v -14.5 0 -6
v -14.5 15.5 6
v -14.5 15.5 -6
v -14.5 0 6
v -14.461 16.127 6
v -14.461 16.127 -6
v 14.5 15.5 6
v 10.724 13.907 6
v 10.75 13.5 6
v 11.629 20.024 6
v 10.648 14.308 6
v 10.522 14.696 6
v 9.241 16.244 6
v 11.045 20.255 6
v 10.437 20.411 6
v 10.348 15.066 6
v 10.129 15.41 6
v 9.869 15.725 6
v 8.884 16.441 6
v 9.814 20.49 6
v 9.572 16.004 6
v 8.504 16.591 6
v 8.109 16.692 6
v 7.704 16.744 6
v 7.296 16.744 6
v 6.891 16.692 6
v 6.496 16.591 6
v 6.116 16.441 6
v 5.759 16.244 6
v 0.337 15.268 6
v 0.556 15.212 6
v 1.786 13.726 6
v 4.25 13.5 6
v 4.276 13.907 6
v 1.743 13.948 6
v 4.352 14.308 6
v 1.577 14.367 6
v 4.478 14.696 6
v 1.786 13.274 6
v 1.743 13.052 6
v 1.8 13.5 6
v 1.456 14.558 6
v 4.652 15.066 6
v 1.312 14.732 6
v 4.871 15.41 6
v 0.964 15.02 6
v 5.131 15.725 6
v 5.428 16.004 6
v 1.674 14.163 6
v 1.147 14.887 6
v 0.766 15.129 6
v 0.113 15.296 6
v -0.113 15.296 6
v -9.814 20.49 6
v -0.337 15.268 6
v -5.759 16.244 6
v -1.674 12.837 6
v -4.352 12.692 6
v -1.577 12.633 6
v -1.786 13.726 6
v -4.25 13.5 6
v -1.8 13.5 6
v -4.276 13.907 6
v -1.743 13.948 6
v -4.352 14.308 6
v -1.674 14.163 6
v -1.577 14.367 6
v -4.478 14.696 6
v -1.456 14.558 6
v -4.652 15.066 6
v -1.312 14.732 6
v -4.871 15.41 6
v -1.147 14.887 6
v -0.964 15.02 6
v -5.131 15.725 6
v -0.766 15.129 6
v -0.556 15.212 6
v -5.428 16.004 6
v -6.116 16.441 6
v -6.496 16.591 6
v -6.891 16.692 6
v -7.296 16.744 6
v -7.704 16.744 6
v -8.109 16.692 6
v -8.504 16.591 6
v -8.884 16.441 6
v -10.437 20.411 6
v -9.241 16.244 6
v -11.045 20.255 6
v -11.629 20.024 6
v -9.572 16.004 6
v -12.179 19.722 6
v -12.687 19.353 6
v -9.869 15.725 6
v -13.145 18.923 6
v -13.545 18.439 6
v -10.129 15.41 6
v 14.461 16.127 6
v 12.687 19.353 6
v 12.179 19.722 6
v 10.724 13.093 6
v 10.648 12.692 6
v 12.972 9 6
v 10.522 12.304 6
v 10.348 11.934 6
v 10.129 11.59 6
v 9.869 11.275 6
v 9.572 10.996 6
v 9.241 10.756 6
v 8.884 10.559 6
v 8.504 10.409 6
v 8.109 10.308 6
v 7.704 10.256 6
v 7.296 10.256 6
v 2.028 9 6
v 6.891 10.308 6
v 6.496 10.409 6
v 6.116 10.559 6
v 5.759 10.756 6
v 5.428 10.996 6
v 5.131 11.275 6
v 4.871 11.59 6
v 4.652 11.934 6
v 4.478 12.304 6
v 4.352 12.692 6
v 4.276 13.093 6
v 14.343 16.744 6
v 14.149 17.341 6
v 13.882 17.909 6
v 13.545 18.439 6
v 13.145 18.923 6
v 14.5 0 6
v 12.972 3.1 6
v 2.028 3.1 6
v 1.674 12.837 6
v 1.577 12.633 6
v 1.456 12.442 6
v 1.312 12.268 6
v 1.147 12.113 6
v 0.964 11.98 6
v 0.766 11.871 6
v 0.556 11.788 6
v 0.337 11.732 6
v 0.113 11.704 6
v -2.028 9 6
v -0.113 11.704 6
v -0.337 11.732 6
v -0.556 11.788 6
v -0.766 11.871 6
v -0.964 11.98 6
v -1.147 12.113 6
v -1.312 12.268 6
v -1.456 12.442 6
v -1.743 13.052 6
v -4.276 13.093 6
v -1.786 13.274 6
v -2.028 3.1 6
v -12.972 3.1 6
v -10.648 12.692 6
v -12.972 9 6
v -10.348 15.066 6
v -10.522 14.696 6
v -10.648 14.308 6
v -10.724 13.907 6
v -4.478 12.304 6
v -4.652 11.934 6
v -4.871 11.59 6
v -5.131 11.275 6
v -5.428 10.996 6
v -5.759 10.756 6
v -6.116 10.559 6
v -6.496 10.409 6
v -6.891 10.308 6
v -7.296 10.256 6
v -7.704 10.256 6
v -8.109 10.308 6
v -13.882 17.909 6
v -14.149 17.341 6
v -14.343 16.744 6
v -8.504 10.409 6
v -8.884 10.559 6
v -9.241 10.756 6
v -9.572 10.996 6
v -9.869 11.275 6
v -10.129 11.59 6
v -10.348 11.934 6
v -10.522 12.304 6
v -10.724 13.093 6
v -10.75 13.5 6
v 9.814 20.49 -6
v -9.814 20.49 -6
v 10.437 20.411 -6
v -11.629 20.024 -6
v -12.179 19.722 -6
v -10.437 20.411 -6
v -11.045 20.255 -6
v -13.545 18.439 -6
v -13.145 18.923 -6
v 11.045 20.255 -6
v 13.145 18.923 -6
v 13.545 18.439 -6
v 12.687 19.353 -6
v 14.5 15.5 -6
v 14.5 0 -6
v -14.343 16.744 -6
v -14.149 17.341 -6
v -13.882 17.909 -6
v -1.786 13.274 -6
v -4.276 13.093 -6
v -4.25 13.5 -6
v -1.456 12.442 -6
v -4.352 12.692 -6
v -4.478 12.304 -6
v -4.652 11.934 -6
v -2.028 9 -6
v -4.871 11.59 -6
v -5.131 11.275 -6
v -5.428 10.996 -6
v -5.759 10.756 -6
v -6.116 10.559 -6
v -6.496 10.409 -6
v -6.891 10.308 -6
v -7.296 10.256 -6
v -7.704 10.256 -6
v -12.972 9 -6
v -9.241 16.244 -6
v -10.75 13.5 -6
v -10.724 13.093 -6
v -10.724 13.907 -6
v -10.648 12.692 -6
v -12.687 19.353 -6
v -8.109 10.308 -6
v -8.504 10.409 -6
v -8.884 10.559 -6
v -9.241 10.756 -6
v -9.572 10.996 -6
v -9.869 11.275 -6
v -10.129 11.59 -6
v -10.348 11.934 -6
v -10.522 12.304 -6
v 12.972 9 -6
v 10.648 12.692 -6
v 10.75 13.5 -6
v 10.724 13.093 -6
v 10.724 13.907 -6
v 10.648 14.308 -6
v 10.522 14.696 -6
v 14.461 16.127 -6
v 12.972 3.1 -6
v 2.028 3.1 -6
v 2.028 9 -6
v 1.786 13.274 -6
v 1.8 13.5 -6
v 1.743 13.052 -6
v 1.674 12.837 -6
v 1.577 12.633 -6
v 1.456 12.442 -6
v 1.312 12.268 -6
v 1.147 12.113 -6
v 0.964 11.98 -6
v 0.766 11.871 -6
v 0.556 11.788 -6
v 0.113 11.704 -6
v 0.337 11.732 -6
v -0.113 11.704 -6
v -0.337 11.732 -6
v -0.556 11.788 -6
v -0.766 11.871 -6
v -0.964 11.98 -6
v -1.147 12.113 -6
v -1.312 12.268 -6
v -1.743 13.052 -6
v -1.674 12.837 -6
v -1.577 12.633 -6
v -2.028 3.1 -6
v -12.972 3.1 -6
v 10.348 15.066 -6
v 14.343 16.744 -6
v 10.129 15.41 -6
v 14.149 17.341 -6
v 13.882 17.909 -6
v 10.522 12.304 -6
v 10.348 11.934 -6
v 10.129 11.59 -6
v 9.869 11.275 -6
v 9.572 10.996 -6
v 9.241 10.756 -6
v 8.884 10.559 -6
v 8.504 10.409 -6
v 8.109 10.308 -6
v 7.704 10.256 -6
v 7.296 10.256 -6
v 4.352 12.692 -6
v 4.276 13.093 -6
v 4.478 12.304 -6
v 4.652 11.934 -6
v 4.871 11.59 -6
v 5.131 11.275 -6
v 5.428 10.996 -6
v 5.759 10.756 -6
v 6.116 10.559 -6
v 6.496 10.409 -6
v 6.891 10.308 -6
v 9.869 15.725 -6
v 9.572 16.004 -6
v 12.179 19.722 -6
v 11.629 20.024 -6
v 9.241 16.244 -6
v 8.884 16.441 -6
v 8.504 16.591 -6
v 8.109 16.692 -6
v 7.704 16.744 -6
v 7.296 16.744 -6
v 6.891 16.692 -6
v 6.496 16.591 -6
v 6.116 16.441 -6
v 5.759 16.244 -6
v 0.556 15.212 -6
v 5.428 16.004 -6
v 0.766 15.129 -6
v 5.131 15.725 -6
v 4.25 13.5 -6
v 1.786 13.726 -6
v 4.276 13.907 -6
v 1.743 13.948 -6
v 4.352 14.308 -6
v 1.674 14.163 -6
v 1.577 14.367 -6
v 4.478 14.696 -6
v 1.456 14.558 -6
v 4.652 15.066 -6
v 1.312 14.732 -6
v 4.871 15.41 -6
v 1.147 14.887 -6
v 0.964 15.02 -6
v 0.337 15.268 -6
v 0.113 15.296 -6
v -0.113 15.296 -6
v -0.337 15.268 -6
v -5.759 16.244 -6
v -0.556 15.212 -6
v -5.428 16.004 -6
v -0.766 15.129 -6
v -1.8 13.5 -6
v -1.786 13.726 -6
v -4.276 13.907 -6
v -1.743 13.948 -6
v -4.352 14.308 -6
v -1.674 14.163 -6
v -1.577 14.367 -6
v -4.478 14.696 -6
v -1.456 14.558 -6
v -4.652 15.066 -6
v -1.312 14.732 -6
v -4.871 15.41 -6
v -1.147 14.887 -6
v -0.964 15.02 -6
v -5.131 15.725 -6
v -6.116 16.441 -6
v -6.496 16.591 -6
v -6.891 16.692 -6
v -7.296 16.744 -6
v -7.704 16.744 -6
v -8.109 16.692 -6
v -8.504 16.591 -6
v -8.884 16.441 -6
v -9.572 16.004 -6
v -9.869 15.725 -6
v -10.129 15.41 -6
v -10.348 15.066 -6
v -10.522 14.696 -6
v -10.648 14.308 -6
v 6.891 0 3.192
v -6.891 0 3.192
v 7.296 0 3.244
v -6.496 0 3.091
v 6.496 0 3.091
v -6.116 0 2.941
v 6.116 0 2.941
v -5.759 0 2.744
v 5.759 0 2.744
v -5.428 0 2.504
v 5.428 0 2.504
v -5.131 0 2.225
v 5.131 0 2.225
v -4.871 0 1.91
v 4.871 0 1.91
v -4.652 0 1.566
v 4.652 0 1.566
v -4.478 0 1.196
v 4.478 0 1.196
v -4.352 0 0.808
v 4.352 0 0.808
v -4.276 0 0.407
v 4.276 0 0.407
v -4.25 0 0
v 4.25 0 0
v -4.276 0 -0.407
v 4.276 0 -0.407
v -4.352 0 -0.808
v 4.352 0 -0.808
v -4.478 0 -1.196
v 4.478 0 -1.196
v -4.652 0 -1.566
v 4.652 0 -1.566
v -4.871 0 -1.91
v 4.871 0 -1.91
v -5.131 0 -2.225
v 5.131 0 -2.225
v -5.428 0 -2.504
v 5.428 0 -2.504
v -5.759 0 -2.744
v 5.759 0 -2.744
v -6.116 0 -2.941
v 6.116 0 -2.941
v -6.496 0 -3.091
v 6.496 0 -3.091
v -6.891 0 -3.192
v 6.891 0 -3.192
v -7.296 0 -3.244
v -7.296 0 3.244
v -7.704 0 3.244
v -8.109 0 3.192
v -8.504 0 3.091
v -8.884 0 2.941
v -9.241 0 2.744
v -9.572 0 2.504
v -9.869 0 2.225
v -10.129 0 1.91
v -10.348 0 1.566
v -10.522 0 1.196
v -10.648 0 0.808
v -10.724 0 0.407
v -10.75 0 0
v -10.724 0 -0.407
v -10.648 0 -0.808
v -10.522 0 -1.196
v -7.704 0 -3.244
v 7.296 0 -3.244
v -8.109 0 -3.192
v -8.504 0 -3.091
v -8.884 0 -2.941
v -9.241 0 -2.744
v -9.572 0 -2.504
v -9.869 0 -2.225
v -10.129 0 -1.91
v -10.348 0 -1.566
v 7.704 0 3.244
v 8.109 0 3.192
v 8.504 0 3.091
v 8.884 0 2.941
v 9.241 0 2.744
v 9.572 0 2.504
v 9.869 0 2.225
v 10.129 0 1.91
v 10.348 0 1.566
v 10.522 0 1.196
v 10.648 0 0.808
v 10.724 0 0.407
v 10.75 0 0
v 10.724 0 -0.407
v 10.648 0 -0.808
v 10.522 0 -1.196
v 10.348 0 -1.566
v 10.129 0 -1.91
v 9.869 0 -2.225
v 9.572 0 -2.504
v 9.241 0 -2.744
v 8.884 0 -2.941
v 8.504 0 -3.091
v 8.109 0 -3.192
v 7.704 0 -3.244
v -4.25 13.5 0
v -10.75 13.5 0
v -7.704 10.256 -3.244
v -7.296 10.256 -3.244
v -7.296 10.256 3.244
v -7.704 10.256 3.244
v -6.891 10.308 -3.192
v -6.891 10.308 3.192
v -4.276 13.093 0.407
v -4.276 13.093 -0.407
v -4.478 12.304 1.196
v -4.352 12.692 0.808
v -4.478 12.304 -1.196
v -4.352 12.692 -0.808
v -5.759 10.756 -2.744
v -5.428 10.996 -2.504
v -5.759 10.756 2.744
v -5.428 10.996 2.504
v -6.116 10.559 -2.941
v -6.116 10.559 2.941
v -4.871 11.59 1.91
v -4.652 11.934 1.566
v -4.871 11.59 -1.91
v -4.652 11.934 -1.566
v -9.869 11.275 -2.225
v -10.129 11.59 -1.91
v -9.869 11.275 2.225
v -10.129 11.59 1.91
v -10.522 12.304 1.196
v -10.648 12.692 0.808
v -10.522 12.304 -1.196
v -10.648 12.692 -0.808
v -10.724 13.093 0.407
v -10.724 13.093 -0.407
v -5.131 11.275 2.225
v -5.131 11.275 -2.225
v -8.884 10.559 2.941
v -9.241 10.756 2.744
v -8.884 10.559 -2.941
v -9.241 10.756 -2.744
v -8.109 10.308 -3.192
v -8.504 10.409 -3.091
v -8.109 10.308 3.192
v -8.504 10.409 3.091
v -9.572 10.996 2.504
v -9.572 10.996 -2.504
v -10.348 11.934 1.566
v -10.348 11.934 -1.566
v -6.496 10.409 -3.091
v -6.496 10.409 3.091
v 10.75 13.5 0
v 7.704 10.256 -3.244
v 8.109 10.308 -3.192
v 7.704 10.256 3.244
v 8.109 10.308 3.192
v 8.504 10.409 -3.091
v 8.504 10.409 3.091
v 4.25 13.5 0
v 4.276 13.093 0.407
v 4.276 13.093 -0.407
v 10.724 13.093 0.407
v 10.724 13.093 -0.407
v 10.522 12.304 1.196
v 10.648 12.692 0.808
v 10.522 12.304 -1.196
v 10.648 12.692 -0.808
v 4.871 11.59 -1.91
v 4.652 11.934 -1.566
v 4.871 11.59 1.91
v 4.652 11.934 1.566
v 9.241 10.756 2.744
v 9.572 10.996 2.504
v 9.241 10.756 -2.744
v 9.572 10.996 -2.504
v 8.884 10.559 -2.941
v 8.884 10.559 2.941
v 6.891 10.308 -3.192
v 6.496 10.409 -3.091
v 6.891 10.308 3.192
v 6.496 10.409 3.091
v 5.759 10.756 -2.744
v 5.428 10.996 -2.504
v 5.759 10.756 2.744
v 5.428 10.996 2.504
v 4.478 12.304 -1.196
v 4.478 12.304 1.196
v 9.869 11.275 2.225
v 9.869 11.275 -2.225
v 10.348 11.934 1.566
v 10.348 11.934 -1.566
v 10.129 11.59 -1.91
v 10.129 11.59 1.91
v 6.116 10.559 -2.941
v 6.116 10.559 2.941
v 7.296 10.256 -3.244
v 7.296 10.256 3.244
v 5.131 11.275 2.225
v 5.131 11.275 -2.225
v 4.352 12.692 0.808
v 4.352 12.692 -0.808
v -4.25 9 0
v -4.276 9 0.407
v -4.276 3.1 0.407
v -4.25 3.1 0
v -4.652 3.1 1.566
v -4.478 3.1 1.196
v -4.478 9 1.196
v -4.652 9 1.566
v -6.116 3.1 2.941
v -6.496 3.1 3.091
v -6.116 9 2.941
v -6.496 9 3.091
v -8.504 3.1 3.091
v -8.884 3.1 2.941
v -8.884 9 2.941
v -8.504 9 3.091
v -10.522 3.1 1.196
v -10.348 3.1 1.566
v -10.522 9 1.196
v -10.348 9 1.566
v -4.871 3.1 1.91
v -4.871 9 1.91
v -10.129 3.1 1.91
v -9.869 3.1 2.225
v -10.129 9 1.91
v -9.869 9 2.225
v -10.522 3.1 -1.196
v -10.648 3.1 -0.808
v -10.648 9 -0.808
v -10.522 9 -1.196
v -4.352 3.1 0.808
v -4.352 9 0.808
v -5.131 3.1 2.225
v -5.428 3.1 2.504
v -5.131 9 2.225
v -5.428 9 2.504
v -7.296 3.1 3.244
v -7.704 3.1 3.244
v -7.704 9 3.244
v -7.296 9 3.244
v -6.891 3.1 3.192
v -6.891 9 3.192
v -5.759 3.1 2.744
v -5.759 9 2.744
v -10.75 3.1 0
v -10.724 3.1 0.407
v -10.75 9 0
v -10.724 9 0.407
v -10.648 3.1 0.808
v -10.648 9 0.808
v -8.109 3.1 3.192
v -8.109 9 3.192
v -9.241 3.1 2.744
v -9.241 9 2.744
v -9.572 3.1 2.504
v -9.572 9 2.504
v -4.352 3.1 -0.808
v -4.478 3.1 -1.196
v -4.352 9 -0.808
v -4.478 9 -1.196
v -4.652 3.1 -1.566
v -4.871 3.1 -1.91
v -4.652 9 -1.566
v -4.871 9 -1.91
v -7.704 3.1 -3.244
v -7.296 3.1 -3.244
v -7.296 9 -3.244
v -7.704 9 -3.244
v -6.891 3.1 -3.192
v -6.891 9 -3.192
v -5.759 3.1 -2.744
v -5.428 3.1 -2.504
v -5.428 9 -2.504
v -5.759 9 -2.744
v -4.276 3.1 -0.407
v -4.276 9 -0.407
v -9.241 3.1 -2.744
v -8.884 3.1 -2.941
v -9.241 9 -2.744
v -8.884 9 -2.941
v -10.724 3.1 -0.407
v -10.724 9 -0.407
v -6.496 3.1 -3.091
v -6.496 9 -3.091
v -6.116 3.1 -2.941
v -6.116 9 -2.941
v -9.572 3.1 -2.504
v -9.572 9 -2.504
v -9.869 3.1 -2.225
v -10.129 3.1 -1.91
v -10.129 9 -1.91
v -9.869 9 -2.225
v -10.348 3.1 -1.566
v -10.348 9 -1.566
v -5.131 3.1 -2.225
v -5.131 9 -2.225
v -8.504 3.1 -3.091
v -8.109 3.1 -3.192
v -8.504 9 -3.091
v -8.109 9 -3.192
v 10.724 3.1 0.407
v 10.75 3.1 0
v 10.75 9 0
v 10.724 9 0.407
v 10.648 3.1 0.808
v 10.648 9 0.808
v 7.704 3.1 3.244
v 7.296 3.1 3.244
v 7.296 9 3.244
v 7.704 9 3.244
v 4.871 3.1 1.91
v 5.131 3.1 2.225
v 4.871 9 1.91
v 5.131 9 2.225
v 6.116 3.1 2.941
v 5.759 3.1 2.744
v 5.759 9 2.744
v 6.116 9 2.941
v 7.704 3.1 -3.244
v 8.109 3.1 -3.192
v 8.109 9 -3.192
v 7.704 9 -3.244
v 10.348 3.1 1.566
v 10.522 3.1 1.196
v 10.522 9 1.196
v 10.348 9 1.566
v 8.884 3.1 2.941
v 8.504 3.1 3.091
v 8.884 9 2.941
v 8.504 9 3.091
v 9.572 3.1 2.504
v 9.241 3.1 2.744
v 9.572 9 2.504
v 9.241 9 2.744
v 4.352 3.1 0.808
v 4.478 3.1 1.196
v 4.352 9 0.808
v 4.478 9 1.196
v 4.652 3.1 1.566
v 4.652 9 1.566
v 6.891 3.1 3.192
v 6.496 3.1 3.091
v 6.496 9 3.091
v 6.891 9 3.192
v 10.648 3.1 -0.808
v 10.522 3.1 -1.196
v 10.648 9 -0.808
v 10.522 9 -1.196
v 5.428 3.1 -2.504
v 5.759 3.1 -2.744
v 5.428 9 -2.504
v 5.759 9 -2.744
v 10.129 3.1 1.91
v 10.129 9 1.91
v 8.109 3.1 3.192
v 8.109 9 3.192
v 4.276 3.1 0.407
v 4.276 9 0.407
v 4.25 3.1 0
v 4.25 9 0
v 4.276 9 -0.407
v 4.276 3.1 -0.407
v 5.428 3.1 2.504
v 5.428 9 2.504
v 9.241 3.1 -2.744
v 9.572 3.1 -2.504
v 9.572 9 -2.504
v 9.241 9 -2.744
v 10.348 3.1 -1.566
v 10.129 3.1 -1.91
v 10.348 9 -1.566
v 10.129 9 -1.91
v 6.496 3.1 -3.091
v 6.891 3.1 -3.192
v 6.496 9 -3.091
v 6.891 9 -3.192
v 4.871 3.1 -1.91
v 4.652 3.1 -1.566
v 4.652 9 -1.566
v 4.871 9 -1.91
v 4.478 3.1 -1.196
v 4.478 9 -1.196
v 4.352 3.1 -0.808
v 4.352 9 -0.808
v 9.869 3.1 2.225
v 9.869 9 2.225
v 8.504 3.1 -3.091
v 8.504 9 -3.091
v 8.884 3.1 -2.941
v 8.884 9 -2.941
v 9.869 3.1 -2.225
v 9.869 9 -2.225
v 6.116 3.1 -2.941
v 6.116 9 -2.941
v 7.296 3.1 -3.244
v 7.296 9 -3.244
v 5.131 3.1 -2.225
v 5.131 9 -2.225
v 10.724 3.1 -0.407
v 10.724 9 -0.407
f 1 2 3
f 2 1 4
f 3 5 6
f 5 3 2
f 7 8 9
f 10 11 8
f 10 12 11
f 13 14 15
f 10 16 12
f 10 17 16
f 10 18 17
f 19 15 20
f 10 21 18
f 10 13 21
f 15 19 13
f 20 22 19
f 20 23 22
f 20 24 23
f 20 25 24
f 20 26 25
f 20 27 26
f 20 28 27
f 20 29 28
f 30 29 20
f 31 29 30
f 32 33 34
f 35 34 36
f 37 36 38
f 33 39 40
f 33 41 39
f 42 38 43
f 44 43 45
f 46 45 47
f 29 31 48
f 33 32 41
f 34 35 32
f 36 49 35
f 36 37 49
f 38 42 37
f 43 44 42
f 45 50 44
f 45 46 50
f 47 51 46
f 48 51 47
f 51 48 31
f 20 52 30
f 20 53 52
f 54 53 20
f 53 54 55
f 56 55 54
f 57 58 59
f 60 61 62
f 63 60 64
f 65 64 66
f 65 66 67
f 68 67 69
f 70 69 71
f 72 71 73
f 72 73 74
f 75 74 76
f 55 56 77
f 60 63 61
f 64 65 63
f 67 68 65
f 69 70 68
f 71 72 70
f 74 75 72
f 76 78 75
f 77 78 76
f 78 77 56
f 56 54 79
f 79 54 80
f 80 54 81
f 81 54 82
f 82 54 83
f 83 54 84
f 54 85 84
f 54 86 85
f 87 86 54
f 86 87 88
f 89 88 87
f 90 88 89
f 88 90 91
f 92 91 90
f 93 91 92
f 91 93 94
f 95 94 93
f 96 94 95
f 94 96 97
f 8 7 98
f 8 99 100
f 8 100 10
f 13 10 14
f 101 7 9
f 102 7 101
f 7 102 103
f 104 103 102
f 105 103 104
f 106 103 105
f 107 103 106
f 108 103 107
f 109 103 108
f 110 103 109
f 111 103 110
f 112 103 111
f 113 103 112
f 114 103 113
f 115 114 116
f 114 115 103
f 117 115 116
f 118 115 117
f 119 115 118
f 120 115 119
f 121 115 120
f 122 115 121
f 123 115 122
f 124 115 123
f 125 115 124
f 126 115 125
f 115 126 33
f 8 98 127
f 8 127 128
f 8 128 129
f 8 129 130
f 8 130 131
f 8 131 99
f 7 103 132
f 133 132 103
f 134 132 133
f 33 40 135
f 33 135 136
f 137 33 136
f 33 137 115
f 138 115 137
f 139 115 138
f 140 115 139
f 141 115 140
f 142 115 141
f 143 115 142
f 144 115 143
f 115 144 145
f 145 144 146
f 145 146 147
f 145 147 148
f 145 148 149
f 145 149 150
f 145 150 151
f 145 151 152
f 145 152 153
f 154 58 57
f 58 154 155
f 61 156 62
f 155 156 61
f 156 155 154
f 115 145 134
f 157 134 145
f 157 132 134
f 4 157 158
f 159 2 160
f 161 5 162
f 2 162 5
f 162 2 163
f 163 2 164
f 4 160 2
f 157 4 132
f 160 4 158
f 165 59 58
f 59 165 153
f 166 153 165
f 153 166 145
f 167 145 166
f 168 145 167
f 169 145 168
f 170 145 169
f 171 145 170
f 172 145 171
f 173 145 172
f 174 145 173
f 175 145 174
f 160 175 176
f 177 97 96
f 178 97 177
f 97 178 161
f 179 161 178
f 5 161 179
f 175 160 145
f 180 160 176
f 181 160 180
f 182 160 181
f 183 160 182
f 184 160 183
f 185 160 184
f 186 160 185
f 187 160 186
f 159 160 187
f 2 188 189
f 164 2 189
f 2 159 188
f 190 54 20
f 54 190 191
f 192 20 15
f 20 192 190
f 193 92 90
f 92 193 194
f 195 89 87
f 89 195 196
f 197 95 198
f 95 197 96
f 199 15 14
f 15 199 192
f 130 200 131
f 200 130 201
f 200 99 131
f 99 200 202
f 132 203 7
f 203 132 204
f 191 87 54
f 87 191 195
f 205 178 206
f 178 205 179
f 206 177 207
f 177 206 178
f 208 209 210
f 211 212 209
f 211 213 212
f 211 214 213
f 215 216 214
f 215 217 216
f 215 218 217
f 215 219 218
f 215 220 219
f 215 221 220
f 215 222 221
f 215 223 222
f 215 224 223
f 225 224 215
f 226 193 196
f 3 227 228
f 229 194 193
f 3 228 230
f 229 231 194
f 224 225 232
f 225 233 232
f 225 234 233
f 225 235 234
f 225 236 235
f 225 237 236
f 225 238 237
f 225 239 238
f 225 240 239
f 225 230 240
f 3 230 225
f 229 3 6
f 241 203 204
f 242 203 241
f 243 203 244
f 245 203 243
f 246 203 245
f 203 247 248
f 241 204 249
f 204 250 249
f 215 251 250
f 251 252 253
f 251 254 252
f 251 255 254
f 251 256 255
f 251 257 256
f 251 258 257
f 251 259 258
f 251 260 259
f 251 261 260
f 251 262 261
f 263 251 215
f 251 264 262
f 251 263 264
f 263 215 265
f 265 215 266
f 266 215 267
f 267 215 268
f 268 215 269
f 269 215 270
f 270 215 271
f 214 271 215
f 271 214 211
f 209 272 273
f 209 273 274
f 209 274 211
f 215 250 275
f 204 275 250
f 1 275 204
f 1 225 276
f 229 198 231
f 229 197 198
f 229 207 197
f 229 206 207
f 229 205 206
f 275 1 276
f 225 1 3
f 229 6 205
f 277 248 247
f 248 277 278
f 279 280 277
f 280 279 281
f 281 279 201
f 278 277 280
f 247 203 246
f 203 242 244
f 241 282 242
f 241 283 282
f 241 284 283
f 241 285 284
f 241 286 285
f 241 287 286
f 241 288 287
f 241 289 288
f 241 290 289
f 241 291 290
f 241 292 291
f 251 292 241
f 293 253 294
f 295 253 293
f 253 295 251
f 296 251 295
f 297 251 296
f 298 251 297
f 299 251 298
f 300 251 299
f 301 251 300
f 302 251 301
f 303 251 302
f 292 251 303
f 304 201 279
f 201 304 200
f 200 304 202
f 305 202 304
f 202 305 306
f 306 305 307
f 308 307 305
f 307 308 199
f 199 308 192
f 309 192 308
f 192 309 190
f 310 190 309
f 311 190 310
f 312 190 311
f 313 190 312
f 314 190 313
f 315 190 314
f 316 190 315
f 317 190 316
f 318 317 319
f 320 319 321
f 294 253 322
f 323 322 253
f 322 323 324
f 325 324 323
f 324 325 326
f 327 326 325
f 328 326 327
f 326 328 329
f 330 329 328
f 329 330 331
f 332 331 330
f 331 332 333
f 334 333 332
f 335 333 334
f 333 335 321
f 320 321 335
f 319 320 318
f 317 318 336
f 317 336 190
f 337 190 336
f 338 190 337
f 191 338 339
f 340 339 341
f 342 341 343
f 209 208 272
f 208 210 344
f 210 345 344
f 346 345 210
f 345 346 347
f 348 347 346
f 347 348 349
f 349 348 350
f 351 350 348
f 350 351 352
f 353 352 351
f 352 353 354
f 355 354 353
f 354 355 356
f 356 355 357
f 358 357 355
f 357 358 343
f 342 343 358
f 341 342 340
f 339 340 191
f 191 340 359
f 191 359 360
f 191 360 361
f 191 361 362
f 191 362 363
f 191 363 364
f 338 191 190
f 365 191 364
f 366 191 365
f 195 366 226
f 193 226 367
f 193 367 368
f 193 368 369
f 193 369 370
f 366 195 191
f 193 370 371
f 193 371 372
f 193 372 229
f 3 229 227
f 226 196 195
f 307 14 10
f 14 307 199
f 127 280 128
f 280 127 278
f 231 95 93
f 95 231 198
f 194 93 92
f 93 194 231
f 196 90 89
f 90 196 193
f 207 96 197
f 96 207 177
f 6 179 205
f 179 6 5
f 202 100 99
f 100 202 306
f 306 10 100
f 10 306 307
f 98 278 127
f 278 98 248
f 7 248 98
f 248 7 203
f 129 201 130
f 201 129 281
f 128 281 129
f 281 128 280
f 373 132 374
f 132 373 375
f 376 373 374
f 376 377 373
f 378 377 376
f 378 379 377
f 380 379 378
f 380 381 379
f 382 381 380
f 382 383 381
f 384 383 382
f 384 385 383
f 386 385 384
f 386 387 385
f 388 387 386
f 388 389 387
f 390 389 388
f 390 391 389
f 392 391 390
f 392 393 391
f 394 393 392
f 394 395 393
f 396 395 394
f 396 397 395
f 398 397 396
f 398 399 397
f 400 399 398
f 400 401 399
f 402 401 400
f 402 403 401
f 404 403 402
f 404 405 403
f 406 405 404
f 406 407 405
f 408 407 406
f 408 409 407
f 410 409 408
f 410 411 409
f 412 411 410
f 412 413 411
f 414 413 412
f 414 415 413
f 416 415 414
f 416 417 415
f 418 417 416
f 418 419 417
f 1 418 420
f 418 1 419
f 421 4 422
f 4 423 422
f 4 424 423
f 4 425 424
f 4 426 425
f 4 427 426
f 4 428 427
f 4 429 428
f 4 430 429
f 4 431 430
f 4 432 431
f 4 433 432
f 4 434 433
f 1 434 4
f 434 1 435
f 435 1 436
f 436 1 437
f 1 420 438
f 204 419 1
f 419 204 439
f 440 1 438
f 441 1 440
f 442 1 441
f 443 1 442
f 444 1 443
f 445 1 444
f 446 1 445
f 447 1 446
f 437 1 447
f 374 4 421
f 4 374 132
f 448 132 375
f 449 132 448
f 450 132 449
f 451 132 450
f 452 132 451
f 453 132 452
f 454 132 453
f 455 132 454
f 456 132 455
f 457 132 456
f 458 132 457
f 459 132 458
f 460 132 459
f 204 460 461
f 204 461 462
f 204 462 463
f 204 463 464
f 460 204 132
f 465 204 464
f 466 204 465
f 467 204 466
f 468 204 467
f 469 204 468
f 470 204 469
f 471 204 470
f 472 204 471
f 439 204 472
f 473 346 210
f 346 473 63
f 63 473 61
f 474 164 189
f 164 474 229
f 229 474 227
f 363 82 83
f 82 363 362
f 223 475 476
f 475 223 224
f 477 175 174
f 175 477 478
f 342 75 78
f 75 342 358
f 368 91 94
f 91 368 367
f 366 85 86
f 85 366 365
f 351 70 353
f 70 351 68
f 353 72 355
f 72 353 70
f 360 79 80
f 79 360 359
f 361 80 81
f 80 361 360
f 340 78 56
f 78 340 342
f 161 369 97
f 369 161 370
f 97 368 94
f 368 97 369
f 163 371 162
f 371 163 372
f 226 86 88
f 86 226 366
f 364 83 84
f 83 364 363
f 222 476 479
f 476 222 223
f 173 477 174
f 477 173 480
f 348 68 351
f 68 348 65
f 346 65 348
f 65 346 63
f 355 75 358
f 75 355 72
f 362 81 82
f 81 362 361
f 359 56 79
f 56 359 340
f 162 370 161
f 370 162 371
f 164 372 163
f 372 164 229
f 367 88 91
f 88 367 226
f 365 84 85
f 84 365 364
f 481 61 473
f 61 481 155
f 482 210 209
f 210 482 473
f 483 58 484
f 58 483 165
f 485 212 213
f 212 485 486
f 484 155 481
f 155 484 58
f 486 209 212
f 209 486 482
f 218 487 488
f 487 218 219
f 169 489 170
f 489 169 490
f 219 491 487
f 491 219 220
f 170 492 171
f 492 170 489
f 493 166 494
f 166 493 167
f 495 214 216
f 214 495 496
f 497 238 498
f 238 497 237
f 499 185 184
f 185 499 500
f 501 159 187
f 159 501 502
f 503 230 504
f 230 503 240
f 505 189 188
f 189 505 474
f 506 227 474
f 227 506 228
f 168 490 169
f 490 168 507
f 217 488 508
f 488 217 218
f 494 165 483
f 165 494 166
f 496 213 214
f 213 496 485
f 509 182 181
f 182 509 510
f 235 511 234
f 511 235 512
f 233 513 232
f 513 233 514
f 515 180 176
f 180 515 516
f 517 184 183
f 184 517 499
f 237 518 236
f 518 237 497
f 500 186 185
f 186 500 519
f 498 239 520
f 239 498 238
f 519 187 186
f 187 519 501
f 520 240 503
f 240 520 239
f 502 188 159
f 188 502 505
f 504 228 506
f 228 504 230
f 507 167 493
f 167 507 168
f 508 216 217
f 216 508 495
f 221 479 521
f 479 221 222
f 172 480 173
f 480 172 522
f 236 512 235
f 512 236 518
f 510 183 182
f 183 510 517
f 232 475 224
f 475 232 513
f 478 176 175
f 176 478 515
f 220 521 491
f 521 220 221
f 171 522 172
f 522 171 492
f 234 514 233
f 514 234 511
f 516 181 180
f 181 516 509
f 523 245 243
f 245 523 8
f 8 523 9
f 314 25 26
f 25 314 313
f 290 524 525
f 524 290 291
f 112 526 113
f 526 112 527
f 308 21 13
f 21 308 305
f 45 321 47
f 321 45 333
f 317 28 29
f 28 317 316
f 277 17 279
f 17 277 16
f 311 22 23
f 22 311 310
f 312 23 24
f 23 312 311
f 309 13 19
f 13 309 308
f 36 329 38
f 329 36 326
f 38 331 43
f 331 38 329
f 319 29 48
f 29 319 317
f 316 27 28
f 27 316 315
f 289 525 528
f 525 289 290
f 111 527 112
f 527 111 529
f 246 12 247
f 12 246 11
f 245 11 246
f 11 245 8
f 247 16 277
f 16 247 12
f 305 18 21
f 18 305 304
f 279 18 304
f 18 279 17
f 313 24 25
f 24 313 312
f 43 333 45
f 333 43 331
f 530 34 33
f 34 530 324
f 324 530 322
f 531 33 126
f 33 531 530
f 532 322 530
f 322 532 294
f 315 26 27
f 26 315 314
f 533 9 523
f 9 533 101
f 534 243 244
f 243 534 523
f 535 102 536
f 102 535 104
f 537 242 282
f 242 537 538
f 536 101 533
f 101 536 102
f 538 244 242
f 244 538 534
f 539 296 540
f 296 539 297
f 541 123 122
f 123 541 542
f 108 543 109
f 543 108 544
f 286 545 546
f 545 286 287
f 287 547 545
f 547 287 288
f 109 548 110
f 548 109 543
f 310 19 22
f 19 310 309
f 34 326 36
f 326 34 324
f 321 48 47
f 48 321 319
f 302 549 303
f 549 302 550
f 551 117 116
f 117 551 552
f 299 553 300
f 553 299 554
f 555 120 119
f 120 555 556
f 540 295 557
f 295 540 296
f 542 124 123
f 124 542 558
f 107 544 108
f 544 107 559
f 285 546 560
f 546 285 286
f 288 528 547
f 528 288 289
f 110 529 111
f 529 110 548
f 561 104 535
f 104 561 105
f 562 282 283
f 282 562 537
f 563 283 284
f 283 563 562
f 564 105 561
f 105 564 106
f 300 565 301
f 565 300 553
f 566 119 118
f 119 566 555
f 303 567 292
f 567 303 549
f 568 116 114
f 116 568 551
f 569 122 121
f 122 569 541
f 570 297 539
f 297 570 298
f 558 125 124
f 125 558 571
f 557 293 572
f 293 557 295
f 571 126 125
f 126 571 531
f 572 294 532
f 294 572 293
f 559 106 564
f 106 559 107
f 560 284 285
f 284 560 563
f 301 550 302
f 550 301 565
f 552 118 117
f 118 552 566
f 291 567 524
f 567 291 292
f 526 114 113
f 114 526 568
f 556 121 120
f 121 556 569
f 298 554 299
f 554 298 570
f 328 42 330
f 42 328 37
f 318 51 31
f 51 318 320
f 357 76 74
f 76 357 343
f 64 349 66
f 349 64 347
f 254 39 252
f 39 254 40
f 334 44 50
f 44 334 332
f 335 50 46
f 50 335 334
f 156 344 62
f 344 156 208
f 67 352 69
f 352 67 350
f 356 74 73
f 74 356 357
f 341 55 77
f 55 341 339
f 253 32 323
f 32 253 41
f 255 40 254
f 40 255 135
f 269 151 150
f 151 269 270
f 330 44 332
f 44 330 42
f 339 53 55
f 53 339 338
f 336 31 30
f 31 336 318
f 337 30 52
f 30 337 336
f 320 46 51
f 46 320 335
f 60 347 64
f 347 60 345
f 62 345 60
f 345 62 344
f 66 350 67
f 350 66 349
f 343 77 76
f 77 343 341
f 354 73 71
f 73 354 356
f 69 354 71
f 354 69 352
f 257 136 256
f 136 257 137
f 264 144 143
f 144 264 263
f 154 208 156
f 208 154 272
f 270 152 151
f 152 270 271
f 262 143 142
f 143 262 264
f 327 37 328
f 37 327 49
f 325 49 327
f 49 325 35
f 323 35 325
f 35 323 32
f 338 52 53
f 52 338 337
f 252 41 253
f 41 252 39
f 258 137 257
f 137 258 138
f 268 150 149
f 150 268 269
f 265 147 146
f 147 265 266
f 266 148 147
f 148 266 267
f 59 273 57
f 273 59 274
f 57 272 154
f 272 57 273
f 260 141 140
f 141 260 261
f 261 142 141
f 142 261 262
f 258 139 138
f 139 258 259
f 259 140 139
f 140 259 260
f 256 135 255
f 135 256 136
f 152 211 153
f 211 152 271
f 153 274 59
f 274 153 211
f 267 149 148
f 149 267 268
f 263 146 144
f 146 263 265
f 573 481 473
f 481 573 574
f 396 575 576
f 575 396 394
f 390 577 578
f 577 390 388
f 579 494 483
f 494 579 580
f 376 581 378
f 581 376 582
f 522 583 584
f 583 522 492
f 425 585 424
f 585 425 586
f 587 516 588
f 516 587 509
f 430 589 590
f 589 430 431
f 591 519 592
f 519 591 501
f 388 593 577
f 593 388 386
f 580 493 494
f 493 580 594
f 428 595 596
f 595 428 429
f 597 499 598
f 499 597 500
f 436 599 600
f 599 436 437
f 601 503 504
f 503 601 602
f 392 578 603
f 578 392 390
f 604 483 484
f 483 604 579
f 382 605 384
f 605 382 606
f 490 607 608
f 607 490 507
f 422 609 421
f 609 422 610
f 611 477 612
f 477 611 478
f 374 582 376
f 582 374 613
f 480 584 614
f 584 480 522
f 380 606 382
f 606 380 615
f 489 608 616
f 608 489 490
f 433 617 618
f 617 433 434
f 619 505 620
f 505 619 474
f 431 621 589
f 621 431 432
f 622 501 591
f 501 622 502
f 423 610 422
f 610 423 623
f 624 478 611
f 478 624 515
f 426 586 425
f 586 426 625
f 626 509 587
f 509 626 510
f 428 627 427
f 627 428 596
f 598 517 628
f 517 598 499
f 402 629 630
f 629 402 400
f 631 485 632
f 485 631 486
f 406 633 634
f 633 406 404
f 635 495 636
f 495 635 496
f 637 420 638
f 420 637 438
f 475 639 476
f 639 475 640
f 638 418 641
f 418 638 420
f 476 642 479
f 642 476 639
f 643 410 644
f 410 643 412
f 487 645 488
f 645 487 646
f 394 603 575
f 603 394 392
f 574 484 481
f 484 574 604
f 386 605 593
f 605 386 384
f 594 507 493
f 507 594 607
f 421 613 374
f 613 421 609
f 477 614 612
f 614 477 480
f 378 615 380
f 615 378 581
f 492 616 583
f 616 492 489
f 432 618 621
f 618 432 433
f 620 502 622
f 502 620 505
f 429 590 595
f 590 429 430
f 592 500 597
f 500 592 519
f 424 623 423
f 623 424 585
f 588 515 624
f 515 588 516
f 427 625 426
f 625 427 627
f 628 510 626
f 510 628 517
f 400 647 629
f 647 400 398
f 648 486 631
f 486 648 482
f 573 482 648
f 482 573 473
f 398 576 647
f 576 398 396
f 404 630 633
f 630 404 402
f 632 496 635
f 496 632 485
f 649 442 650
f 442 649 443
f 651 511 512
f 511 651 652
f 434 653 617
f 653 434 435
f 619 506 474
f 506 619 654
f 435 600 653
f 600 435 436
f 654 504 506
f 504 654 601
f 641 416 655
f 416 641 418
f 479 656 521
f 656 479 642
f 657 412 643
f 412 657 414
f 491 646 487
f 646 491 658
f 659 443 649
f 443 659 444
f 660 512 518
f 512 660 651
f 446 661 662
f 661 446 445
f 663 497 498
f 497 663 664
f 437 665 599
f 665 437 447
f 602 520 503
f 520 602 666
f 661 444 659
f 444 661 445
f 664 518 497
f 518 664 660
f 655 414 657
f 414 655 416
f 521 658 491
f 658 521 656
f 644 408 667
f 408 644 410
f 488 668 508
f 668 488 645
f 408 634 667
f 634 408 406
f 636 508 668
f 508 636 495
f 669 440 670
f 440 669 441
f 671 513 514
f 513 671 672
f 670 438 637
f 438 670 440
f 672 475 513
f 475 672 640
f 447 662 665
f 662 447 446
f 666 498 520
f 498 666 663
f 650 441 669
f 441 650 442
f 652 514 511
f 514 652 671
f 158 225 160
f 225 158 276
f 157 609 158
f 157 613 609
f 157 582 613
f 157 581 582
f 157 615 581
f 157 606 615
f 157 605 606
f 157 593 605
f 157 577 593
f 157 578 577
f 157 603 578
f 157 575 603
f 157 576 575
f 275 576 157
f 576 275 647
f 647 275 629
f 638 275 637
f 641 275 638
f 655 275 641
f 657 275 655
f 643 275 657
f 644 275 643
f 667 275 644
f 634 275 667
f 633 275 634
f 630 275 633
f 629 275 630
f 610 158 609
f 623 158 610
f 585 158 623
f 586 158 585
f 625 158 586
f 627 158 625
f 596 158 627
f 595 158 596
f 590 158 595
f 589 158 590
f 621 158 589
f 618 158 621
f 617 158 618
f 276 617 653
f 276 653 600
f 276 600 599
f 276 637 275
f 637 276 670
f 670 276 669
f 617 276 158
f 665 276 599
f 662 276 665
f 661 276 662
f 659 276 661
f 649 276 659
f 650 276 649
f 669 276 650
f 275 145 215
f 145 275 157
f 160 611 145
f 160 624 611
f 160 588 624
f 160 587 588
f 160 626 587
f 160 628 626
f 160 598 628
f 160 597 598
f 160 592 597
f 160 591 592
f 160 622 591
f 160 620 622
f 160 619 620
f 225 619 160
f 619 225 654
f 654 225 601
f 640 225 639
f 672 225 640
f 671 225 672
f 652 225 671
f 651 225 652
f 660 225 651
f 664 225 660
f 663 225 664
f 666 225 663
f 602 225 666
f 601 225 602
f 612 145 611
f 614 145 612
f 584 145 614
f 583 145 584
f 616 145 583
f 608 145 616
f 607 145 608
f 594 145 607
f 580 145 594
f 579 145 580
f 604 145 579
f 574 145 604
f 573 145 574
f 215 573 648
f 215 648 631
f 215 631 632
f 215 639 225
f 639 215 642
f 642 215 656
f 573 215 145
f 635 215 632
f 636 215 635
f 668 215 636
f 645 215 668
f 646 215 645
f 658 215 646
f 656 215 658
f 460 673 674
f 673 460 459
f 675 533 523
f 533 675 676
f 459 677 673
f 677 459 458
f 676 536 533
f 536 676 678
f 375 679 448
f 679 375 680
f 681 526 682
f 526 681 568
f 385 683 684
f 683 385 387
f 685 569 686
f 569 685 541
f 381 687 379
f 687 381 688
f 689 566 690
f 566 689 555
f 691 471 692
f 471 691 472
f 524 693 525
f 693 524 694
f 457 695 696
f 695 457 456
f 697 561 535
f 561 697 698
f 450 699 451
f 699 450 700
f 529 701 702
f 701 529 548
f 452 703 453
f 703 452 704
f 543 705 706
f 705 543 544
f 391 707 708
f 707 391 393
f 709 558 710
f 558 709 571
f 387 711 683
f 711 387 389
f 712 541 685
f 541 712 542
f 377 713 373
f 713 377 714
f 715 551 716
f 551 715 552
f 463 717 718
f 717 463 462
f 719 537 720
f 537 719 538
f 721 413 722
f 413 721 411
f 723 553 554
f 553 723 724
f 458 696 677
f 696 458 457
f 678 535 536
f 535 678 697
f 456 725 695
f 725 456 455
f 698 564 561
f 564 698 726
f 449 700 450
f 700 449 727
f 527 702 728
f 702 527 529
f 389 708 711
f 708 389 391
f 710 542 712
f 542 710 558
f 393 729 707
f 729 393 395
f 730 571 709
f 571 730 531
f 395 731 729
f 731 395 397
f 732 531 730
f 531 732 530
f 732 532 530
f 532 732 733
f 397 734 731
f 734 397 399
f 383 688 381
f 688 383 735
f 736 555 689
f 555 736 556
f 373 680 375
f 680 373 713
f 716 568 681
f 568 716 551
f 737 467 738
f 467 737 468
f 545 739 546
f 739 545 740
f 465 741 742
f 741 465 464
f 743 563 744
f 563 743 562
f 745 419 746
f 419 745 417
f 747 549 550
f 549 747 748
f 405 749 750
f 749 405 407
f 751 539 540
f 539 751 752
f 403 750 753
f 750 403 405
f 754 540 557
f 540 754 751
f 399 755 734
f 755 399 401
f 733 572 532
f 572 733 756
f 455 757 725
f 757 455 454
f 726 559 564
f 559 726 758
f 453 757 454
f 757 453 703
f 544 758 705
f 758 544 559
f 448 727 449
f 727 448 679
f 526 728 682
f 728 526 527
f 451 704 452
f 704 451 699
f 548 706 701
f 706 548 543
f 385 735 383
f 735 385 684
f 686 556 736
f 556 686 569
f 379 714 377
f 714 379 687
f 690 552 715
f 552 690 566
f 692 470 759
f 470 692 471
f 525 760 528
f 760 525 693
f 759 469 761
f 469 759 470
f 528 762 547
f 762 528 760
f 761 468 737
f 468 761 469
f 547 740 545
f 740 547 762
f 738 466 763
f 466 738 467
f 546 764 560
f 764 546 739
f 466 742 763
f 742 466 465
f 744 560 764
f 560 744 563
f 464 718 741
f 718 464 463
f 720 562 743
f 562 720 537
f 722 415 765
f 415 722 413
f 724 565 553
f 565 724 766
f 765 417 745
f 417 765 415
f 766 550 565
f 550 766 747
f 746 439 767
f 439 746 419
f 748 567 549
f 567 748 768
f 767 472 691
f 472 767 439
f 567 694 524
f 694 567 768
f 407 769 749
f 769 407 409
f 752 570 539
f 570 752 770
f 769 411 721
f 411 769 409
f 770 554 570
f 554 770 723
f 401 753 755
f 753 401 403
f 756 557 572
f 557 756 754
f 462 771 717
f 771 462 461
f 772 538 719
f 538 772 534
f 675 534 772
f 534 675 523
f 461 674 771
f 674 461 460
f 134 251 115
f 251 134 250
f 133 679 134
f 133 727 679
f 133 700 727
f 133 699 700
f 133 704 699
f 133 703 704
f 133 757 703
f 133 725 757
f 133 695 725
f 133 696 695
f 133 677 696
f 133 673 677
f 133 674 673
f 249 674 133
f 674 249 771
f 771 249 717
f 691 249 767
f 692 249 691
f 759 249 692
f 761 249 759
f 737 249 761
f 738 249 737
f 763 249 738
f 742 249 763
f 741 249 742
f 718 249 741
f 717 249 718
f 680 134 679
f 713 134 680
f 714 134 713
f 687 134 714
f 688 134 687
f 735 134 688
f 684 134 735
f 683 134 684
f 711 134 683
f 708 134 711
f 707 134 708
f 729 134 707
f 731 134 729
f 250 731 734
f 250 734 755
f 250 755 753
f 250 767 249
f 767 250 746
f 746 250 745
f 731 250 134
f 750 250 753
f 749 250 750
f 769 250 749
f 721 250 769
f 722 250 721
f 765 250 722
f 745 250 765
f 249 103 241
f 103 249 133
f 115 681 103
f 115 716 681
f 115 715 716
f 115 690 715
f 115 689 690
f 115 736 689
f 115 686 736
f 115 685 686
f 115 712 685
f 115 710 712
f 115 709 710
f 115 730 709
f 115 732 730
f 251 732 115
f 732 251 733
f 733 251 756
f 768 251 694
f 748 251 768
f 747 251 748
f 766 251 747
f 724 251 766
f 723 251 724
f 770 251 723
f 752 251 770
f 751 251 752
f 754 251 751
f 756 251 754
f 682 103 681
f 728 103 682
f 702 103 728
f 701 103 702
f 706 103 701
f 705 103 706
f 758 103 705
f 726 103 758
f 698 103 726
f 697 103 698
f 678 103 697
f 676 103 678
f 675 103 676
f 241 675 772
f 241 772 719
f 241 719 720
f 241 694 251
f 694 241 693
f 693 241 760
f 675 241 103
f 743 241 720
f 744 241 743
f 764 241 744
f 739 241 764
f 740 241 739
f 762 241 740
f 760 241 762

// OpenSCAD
$fn = 50;


difference() {
	union() {
		translate(v = [0, 13.5000000000, -6.0000000000]) {
			rotate(a = [0, 0, 0]) {
				hull() {
					translate(v = [-9.5000000000, 2.0000000000, 0]) {
						rotate(a = [0, 0, 0]) {
							translate(v = [0, 0, 0]) {
								rotate(a = [0, 0, 0]) {
									cylinder(h = 12, r = 5);
								}
							}
						}
					}
					translate(v = [9.5000000000, 2.0000000000, 0]) {
						rotate(a = [0, 0, 0]) {
							translate(v = [0, 0, 0]) {
								rotate(a = [0, 0, 0]) {
									cylinder(h = 12, r = 5);
								}
							}
						}
					}
					translate(v = [-9.5000000000, -2.0000000000, 0]) {
						rotate(a = [0, 0, 0]) {
							translate(v = [0, 0, 0]) {
								rotate(a = [0, 0, 0]) {
									cylinder(h = 12, r = 5);
								}
							}
						}
					}
					translate(v = [9.5000000000, -2.0000000000, 0]) {
						rotate(a = [0, 0, 0]) {
							translate(v = [0, 0, 0]) {
								rotate(a = [0, 0, 0]) {
									cylinder(h = 12, r = 5);
								}
							}
						}
					}
				}
			}
		}
		translate(v = [-14.5000000000, 0, -6.0000000000]) {
			rotate(a = [0, 0, 0]) {
				cube(size = [29, 13.5000000000, 12]);
			}
		}
	}
	union() {
		translate(v = [-7.5000000000, 13.5000000000, -6.0000000000]) {
			rotate(a = [0, 0, 0]) {
				translate(v = [0, 0, -50]) {
					rotate(a = [0, 0, 0]) {
						cylinder(h = 100, r = 3.2500000000);
					}
				}
			}
		}
		translate(v = [7.5000000000, 13.5000000000, -6.0000000000]) {
			rotate(a = [0, 0, 0]) {
				translate(v = [0, 0, -50]) {
					rotate(a = [0, 0, 0]) {
						cylinder(h = 100, r = 3.2500000000);
					}
				}
			}
		}
		translate(v = [-7.5000000000, 13.5000000000, -6.0000000000]) {
			rotate(a = [0, 0, 0]) {
				translate(v = [0, 0, -50]) {
					rotate(a = [0, 0, 0]) {
						cylinder(h = 100, r = 1.8000000000);
					}
				}
			}
		}
		translate(v = [0.0000000000, 13.5000000000, -6.0000000000]) {
			rotate(a = [0, 0, 0]) {
				translate(v = [0, 0, -50]) {
					rotate(a = [0, 0, 0]) {
						cylinder(h = 100, r = 1.8000000000);
					}
				}
			}
		}
		translate(v = [7.5000000000, 13.5000000000, -6.0000000000]) {
			rotate(a = [0, 0, 0]) {
				translate(v = [0, 0, -50]) {
					rotate(a = [0, 0, 0]) {
						cylinder(h = 100, r = 1.8000000000);
					}
				}
			}
		}
		translate(v = [-7.5000000000, 13.5000000000, 0]) {
			rotate(a = [90, 0, 0]) {
				cylinder(h = 13.5000000000, r = 3.2500000000);
			}
		}
		translate(v = [-12.9716204506, 9, -25]) {
			rotate(a = [90, 0, 0]) {
				cube(size = [10.9432409012, 100, 5.9000000000]);
			}
		}
		translate(v = [7.5000000000, 13.5000000000, 0]) {
			rotate(a = [90, 0, 0]) {
				cylinder(h = 13.5000000000, r = 3.2500000000);
			}
		}
		translate(v = [2.0283795494, 9, -25]) {
			rotate(a = [90, 0, 0]) {
				cube(size = [10.9432409012, 100, 5.9000000000]);
			}
		}
	}
}
